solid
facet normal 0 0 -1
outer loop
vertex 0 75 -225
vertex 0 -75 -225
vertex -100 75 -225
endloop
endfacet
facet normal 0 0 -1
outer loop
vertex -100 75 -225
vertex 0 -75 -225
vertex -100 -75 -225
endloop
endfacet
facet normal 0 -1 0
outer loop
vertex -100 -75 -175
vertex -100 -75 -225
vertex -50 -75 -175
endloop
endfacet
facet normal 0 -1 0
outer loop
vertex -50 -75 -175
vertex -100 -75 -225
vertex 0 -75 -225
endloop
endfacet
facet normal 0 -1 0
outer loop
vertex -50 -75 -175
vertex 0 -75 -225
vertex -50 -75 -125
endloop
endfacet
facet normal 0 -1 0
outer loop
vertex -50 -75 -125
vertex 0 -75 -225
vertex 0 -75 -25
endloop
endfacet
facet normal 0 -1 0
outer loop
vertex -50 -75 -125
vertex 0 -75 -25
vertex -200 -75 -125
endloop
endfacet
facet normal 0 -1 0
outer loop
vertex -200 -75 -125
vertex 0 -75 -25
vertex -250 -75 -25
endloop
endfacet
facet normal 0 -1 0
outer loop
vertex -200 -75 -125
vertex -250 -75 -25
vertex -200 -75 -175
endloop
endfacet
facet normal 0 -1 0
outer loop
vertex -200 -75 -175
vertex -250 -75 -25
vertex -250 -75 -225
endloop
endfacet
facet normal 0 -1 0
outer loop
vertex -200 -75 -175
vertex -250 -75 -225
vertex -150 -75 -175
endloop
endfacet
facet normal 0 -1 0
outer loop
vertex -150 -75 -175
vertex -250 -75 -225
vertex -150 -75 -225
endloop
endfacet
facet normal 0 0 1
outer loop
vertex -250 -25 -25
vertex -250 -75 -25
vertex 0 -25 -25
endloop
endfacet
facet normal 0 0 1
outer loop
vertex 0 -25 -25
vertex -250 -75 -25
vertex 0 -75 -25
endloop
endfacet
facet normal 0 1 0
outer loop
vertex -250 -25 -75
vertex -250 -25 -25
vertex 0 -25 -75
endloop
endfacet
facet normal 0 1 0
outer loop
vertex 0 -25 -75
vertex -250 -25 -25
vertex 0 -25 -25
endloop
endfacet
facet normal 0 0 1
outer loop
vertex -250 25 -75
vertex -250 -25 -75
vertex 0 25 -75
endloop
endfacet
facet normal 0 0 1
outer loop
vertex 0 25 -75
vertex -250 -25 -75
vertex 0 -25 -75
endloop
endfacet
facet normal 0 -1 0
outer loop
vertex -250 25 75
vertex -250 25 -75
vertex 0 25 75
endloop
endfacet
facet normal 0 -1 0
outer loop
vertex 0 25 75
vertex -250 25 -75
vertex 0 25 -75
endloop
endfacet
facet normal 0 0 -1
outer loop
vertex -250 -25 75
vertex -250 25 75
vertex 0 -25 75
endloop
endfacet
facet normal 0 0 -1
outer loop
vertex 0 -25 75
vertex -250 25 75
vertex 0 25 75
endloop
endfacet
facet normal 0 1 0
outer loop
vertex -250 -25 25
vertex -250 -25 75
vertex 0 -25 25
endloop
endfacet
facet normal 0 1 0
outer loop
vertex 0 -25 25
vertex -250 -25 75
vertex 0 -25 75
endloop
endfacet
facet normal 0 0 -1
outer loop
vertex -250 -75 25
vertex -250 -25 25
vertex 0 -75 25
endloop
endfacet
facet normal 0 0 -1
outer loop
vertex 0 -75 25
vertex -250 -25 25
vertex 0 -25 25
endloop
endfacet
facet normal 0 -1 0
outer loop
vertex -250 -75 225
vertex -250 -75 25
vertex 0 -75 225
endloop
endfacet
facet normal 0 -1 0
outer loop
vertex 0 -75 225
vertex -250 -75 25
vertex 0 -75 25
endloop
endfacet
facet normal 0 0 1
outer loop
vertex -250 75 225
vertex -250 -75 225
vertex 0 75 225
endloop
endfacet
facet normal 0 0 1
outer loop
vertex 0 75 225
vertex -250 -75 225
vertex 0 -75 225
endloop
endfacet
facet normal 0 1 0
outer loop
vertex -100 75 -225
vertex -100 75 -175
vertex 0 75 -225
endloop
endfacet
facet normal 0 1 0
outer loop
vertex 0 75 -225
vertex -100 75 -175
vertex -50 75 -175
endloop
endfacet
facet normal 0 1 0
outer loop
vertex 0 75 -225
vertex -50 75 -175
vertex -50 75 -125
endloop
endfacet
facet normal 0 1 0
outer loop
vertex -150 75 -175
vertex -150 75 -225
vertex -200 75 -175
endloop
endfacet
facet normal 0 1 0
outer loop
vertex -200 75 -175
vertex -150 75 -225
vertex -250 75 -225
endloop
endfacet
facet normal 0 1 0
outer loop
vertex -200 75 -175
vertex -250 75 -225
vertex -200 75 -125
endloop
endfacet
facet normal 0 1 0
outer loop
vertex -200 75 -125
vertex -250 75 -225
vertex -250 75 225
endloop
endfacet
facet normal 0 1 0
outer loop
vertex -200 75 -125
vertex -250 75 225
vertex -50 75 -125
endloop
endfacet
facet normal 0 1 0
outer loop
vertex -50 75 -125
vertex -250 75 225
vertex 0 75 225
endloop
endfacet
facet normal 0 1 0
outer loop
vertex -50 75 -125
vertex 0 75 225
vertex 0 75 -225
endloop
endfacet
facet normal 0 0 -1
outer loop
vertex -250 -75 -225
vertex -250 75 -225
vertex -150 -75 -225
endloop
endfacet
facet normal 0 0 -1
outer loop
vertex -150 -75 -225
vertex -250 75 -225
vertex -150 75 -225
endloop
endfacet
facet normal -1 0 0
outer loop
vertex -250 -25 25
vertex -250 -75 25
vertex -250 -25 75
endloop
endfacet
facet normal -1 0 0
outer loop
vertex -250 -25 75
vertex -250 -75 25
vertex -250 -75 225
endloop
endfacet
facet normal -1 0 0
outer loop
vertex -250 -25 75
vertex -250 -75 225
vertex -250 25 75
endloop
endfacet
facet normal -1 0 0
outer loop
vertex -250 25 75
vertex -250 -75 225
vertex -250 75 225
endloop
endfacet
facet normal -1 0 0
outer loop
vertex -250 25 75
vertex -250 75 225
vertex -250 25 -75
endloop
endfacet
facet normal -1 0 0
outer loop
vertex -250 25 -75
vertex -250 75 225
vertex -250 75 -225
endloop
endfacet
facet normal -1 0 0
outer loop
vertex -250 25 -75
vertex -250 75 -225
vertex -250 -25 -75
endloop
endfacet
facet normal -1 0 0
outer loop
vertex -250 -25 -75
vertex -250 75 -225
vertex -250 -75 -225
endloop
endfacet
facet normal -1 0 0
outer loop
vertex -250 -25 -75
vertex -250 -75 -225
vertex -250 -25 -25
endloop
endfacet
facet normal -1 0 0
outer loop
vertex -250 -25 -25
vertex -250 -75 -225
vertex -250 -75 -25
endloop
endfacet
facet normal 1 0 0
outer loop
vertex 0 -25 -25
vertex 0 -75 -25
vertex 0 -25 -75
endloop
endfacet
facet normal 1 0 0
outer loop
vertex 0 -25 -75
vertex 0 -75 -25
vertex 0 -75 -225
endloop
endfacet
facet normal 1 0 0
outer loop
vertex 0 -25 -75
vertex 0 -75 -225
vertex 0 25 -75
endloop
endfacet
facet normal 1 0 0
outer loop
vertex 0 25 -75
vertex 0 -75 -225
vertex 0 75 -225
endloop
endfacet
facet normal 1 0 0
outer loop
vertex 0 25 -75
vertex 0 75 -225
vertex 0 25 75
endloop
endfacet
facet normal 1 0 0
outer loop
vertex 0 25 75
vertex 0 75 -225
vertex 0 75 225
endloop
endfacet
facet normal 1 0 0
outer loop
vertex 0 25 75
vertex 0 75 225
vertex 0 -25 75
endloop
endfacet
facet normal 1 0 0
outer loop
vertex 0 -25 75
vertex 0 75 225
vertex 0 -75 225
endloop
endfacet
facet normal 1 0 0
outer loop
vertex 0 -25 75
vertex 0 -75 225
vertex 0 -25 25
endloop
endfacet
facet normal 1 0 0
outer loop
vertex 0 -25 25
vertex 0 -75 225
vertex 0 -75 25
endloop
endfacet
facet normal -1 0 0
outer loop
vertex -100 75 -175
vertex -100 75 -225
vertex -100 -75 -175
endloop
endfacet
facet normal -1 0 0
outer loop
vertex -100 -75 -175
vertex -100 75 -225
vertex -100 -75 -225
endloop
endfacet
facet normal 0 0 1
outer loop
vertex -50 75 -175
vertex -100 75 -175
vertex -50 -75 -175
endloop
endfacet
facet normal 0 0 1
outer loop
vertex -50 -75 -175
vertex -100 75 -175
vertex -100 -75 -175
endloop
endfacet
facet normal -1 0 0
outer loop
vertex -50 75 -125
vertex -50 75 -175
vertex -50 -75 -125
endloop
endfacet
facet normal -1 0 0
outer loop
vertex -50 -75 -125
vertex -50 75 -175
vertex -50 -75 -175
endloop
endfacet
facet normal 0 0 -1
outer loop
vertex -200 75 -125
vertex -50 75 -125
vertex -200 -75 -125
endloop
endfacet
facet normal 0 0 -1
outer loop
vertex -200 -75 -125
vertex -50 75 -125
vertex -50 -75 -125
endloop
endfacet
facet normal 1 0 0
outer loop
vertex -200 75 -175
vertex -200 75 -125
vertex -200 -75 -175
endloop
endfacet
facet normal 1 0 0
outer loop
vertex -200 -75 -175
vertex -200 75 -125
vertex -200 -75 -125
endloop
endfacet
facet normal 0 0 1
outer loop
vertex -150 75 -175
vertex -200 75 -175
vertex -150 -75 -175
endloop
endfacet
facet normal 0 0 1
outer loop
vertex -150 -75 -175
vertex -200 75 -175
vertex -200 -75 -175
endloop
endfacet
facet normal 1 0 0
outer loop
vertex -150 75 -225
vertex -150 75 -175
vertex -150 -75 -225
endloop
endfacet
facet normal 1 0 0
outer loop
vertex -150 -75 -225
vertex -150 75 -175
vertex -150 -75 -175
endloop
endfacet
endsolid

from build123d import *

# Parameters (mm, degrees)
BOSS_EXTRUDE1_DEPTH = 250
CUT_EXTRUDE1_DEPTH  = 250


with BuildPart() as part:
    # Sketch2 → Boss-Extrude1 (new body)
    with BuildSketch(Plane(origin=(0, 0, 0), x_dir=(0, 0, -1), z_dir=(1, 0, 0))):
        Polygon((-25, -75), (-25, -25), (-75, -25), (-75, 25), (75, 25), (75, -25), (25, -25), (25, -75), (225, -75), (225, 75), (-225, 75), (-225, -75), align=None)
    extrude(amount=-BOSS_EXTRUDE1_DEPTH)

    # Sketch3 → Cut-Extrude1 (cut)
    with BuildSketch(Plane(origin=(0, 75, 0), x_dir=(1, 0, 0), z_dir=(0, 1, 0))):
        Polygon((-100, 225), (-100, 175), (-50, 175), (-50, 125), (-200, 125), (-200, 175), (-150, 175), (-150, 225), align=None)
    extrude(amount=-CUT_EXTRUDE1_DEPTH, mode=Mode.SUBTRACT)


solid = part.part
